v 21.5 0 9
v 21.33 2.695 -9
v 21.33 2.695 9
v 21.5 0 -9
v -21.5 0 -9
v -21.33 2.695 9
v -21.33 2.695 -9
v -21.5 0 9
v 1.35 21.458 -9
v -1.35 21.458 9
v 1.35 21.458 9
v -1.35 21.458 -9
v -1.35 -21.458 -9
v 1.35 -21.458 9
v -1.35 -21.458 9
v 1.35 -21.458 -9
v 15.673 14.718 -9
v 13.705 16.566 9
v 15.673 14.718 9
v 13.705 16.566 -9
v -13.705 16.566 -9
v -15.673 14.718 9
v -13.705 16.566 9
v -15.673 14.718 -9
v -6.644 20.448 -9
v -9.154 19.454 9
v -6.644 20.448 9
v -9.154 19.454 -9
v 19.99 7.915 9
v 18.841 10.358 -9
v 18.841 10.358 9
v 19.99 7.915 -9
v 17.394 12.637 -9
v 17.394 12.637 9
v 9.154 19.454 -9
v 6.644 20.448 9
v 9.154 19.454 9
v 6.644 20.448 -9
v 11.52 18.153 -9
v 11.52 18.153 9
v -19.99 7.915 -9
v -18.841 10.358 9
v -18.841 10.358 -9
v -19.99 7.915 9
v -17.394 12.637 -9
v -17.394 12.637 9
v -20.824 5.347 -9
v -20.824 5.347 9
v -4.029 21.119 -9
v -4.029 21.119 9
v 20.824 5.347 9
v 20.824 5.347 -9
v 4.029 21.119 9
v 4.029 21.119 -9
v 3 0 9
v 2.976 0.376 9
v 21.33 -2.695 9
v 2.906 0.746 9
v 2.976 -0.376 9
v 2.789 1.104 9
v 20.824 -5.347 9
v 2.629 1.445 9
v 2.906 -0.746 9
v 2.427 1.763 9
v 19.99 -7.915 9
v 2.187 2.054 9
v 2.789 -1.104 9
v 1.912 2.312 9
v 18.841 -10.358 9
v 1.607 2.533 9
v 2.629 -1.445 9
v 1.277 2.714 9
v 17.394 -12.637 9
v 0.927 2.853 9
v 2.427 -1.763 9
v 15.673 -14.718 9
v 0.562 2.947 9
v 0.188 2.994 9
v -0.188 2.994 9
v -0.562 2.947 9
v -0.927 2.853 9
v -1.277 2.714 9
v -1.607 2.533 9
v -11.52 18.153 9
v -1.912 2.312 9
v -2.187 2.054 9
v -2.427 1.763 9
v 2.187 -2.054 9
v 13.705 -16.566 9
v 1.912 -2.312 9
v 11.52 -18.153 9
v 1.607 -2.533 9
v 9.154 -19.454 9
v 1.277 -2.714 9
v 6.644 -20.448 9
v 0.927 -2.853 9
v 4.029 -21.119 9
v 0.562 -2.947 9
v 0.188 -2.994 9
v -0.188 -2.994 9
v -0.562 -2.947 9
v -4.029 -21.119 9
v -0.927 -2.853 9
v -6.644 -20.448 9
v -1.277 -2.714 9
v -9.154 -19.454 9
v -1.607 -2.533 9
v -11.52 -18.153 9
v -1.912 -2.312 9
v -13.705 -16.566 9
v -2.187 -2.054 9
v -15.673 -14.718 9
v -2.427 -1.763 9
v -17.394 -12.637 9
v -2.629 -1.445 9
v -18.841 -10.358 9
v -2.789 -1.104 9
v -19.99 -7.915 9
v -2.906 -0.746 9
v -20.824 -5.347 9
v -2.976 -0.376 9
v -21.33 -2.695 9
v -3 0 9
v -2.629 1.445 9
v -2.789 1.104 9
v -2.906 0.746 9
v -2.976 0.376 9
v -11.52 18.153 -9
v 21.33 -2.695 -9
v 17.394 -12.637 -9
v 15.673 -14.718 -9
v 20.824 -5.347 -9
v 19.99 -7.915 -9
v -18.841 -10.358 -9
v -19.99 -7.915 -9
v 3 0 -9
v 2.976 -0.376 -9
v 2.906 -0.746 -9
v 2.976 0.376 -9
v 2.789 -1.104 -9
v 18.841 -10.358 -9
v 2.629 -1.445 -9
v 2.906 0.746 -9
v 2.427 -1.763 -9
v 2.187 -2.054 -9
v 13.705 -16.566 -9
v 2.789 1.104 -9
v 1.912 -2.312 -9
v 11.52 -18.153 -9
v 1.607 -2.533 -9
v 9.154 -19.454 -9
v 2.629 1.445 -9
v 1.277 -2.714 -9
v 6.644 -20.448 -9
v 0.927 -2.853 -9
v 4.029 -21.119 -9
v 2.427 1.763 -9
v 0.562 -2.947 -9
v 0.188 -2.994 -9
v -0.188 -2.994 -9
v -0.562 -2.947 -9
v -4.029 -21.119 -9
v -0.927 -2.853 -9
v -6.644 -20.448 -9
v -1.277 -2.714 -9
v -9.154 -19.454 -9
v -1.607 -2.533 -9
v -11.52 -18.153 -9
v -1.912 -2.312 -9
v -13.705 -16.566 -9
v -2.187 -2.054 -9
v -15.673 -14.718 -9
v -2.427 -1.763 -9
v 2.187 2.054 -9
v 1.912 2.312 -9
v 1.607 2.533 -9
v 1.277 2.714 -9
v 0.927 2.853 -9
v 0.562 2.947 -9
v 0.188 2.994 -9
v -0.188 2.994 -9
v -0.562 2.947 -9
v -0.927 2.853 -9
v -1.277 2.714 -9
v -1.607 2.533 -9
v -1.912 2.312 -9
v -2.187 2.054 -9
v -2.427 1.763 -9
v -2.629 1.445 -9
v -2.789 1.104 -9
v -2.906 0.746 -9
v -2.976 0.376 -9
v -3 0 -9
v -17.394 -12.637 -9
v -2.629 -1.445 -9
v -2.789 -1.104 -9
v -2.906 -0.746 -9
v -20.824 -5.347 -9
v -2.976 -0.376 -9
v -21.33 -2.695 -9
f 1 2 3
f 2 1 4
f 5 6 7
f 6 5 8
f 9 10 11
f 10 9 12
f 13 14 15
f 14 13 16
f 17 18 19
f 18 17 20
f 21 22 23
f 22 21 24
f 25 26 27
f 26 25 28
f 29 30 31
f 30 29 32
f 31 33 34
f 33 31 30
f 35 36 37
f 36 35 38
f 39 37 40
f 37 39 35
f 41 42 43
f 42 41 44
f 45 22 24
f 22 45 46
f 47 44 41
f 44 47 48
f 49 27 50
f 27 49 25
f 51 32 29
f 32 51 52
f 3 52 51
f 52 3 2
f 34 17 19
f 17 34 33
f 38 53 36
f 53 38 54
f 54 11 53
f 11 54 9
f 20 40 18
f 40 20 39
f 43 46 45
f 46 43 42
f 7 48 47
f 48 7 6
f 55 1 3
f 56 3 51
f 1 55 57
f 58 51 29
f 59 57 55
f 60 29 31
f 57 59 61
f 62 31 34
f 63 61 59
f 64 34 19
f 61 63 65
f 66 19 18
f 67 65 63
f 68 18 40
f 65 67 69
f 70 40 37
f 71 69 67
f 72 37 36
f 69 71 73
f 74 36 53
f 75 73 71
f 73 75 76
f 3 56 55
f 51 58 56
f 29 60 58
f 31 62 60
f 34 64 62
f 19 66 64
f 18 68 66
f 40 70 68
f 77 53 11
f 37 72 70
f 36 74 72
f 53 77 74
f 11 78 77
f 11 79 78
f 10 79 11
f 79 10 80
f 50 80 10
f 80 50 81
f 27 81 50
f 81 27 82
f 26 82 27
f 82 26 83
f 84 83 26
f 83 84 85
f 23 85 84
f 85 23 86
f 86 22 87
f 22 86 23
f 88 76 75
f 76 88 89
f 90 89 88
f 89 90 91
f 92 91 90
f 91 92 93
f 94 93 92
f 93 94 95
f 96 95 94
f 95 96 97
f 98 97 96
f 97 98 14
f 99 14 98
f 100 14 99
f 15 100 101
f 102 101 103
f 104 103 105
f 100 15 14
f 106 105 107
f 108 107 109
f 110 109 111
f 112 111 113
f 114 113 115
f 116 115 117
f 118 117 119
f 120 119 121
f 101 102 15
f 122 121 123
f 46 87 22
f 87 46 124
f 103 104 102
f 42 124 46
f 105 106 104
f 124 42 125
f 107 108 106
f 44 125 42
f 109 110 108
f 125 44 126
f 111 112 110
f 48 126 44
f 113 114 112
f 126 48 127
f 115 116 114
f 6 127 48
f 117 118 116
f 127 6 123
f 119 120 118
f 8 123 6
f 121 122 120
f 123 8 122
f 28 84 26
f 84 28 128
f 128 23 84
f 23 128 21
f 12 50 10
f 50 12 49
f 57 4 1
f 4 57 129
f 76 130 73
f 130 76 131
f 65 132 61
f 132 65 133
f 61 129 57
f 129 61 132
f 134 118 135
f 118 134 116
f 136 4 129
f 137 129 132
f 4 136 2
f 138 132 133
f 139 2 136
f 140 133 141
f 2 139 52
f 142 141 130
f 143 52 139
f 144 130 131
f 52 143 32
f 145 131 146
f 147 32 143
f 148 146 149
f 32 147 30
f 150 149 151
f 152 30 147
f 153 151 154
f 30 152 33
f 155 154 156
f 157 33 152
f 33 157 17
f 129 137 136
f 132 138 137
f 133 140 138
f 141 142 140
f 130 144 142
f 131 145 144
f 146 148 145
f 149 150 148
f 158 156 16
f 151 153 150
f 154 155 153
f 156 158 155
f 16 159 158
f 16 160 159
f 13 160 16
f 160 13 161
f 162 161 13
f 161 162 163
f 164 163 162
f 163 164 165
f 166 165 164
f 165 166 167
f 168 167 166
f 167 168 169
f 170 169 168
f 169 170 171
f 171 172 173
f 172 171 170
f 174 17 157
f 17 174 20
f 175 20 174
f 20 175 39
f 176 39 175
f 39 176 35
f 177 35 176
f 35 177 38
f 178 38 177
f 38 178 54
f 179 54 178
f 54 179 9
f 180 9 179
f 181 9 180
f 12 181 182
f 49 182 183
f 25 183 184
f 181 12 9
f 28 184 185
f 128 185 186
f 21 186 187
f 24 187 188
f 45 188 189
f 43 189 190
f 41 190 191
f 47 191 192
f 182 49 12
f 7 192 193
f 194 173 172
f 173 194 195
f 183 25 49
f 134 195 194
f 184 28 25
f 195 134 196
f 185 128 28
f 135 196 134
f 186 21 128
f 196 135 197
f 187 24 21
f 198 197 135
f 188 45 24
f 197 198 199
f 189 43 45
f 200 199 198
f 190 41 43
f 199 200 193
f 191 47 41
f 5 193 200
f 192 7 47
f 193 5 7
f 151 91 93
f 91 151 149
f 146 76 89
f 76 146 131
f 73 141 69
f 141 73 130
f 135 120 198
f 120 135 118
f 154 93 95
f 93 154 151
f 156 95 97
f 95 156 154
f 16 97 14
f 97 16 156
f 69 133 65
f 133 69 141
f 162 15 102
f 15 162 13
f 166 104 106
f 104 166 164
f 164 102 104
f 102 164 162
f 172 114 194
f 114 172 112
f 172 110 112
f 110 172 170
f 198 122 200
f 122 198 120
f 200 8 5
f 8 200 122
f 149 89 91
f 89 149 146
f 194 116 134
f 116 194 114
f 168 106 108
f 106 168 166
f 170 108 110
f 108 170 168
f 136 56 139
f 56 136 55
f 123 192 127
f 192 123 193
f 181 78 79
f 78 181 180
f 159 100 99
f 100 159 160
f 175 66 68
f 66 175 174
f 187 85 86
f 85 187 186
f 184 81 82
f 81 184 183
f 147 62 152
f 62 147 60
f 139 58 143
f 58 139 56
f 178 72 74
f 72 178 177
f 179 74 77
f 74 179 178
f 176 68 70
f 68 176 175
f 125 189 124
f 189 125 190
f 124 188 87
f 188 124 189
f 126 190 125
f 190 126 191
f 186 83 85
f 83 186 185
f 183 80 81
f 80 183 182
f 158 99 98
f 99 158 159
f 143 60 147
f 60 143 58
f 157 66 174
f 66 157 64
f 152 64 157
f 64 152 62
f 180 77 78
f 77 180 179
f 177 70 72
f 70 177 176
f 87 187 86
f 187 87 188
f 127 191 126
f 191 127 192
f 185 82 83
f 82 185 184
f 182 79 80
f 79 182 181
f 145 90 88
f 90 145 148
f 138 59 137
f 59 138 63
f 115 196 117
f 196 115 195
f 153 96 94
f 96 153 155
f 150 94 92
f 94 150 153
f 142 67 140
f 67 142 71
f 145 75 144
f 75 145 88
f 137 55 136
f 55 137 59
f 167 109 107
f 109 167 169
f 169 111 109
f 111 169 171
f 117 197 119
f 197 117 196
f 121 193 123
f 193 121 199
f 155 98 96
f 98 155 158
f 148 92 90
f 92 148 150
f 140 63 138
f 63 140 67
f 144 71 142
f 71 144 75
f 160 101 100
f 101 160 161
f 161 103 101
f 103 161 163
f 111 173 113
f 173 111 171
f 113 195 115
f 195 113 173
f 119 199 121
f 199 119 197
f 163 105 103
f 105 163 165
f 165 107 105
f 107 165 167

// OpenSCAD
$fn = 50;


difference() {
	union() {
		translate(v = [0, 0, -9.0000000000]) {
			cylinder(h = 18, r = 21.5000000000);
		}
	}
	union() {
		translate(v = [0, 0, -100.0000000000]) {
			cylinder(h = 200, r = 3);
		}
	}
}
